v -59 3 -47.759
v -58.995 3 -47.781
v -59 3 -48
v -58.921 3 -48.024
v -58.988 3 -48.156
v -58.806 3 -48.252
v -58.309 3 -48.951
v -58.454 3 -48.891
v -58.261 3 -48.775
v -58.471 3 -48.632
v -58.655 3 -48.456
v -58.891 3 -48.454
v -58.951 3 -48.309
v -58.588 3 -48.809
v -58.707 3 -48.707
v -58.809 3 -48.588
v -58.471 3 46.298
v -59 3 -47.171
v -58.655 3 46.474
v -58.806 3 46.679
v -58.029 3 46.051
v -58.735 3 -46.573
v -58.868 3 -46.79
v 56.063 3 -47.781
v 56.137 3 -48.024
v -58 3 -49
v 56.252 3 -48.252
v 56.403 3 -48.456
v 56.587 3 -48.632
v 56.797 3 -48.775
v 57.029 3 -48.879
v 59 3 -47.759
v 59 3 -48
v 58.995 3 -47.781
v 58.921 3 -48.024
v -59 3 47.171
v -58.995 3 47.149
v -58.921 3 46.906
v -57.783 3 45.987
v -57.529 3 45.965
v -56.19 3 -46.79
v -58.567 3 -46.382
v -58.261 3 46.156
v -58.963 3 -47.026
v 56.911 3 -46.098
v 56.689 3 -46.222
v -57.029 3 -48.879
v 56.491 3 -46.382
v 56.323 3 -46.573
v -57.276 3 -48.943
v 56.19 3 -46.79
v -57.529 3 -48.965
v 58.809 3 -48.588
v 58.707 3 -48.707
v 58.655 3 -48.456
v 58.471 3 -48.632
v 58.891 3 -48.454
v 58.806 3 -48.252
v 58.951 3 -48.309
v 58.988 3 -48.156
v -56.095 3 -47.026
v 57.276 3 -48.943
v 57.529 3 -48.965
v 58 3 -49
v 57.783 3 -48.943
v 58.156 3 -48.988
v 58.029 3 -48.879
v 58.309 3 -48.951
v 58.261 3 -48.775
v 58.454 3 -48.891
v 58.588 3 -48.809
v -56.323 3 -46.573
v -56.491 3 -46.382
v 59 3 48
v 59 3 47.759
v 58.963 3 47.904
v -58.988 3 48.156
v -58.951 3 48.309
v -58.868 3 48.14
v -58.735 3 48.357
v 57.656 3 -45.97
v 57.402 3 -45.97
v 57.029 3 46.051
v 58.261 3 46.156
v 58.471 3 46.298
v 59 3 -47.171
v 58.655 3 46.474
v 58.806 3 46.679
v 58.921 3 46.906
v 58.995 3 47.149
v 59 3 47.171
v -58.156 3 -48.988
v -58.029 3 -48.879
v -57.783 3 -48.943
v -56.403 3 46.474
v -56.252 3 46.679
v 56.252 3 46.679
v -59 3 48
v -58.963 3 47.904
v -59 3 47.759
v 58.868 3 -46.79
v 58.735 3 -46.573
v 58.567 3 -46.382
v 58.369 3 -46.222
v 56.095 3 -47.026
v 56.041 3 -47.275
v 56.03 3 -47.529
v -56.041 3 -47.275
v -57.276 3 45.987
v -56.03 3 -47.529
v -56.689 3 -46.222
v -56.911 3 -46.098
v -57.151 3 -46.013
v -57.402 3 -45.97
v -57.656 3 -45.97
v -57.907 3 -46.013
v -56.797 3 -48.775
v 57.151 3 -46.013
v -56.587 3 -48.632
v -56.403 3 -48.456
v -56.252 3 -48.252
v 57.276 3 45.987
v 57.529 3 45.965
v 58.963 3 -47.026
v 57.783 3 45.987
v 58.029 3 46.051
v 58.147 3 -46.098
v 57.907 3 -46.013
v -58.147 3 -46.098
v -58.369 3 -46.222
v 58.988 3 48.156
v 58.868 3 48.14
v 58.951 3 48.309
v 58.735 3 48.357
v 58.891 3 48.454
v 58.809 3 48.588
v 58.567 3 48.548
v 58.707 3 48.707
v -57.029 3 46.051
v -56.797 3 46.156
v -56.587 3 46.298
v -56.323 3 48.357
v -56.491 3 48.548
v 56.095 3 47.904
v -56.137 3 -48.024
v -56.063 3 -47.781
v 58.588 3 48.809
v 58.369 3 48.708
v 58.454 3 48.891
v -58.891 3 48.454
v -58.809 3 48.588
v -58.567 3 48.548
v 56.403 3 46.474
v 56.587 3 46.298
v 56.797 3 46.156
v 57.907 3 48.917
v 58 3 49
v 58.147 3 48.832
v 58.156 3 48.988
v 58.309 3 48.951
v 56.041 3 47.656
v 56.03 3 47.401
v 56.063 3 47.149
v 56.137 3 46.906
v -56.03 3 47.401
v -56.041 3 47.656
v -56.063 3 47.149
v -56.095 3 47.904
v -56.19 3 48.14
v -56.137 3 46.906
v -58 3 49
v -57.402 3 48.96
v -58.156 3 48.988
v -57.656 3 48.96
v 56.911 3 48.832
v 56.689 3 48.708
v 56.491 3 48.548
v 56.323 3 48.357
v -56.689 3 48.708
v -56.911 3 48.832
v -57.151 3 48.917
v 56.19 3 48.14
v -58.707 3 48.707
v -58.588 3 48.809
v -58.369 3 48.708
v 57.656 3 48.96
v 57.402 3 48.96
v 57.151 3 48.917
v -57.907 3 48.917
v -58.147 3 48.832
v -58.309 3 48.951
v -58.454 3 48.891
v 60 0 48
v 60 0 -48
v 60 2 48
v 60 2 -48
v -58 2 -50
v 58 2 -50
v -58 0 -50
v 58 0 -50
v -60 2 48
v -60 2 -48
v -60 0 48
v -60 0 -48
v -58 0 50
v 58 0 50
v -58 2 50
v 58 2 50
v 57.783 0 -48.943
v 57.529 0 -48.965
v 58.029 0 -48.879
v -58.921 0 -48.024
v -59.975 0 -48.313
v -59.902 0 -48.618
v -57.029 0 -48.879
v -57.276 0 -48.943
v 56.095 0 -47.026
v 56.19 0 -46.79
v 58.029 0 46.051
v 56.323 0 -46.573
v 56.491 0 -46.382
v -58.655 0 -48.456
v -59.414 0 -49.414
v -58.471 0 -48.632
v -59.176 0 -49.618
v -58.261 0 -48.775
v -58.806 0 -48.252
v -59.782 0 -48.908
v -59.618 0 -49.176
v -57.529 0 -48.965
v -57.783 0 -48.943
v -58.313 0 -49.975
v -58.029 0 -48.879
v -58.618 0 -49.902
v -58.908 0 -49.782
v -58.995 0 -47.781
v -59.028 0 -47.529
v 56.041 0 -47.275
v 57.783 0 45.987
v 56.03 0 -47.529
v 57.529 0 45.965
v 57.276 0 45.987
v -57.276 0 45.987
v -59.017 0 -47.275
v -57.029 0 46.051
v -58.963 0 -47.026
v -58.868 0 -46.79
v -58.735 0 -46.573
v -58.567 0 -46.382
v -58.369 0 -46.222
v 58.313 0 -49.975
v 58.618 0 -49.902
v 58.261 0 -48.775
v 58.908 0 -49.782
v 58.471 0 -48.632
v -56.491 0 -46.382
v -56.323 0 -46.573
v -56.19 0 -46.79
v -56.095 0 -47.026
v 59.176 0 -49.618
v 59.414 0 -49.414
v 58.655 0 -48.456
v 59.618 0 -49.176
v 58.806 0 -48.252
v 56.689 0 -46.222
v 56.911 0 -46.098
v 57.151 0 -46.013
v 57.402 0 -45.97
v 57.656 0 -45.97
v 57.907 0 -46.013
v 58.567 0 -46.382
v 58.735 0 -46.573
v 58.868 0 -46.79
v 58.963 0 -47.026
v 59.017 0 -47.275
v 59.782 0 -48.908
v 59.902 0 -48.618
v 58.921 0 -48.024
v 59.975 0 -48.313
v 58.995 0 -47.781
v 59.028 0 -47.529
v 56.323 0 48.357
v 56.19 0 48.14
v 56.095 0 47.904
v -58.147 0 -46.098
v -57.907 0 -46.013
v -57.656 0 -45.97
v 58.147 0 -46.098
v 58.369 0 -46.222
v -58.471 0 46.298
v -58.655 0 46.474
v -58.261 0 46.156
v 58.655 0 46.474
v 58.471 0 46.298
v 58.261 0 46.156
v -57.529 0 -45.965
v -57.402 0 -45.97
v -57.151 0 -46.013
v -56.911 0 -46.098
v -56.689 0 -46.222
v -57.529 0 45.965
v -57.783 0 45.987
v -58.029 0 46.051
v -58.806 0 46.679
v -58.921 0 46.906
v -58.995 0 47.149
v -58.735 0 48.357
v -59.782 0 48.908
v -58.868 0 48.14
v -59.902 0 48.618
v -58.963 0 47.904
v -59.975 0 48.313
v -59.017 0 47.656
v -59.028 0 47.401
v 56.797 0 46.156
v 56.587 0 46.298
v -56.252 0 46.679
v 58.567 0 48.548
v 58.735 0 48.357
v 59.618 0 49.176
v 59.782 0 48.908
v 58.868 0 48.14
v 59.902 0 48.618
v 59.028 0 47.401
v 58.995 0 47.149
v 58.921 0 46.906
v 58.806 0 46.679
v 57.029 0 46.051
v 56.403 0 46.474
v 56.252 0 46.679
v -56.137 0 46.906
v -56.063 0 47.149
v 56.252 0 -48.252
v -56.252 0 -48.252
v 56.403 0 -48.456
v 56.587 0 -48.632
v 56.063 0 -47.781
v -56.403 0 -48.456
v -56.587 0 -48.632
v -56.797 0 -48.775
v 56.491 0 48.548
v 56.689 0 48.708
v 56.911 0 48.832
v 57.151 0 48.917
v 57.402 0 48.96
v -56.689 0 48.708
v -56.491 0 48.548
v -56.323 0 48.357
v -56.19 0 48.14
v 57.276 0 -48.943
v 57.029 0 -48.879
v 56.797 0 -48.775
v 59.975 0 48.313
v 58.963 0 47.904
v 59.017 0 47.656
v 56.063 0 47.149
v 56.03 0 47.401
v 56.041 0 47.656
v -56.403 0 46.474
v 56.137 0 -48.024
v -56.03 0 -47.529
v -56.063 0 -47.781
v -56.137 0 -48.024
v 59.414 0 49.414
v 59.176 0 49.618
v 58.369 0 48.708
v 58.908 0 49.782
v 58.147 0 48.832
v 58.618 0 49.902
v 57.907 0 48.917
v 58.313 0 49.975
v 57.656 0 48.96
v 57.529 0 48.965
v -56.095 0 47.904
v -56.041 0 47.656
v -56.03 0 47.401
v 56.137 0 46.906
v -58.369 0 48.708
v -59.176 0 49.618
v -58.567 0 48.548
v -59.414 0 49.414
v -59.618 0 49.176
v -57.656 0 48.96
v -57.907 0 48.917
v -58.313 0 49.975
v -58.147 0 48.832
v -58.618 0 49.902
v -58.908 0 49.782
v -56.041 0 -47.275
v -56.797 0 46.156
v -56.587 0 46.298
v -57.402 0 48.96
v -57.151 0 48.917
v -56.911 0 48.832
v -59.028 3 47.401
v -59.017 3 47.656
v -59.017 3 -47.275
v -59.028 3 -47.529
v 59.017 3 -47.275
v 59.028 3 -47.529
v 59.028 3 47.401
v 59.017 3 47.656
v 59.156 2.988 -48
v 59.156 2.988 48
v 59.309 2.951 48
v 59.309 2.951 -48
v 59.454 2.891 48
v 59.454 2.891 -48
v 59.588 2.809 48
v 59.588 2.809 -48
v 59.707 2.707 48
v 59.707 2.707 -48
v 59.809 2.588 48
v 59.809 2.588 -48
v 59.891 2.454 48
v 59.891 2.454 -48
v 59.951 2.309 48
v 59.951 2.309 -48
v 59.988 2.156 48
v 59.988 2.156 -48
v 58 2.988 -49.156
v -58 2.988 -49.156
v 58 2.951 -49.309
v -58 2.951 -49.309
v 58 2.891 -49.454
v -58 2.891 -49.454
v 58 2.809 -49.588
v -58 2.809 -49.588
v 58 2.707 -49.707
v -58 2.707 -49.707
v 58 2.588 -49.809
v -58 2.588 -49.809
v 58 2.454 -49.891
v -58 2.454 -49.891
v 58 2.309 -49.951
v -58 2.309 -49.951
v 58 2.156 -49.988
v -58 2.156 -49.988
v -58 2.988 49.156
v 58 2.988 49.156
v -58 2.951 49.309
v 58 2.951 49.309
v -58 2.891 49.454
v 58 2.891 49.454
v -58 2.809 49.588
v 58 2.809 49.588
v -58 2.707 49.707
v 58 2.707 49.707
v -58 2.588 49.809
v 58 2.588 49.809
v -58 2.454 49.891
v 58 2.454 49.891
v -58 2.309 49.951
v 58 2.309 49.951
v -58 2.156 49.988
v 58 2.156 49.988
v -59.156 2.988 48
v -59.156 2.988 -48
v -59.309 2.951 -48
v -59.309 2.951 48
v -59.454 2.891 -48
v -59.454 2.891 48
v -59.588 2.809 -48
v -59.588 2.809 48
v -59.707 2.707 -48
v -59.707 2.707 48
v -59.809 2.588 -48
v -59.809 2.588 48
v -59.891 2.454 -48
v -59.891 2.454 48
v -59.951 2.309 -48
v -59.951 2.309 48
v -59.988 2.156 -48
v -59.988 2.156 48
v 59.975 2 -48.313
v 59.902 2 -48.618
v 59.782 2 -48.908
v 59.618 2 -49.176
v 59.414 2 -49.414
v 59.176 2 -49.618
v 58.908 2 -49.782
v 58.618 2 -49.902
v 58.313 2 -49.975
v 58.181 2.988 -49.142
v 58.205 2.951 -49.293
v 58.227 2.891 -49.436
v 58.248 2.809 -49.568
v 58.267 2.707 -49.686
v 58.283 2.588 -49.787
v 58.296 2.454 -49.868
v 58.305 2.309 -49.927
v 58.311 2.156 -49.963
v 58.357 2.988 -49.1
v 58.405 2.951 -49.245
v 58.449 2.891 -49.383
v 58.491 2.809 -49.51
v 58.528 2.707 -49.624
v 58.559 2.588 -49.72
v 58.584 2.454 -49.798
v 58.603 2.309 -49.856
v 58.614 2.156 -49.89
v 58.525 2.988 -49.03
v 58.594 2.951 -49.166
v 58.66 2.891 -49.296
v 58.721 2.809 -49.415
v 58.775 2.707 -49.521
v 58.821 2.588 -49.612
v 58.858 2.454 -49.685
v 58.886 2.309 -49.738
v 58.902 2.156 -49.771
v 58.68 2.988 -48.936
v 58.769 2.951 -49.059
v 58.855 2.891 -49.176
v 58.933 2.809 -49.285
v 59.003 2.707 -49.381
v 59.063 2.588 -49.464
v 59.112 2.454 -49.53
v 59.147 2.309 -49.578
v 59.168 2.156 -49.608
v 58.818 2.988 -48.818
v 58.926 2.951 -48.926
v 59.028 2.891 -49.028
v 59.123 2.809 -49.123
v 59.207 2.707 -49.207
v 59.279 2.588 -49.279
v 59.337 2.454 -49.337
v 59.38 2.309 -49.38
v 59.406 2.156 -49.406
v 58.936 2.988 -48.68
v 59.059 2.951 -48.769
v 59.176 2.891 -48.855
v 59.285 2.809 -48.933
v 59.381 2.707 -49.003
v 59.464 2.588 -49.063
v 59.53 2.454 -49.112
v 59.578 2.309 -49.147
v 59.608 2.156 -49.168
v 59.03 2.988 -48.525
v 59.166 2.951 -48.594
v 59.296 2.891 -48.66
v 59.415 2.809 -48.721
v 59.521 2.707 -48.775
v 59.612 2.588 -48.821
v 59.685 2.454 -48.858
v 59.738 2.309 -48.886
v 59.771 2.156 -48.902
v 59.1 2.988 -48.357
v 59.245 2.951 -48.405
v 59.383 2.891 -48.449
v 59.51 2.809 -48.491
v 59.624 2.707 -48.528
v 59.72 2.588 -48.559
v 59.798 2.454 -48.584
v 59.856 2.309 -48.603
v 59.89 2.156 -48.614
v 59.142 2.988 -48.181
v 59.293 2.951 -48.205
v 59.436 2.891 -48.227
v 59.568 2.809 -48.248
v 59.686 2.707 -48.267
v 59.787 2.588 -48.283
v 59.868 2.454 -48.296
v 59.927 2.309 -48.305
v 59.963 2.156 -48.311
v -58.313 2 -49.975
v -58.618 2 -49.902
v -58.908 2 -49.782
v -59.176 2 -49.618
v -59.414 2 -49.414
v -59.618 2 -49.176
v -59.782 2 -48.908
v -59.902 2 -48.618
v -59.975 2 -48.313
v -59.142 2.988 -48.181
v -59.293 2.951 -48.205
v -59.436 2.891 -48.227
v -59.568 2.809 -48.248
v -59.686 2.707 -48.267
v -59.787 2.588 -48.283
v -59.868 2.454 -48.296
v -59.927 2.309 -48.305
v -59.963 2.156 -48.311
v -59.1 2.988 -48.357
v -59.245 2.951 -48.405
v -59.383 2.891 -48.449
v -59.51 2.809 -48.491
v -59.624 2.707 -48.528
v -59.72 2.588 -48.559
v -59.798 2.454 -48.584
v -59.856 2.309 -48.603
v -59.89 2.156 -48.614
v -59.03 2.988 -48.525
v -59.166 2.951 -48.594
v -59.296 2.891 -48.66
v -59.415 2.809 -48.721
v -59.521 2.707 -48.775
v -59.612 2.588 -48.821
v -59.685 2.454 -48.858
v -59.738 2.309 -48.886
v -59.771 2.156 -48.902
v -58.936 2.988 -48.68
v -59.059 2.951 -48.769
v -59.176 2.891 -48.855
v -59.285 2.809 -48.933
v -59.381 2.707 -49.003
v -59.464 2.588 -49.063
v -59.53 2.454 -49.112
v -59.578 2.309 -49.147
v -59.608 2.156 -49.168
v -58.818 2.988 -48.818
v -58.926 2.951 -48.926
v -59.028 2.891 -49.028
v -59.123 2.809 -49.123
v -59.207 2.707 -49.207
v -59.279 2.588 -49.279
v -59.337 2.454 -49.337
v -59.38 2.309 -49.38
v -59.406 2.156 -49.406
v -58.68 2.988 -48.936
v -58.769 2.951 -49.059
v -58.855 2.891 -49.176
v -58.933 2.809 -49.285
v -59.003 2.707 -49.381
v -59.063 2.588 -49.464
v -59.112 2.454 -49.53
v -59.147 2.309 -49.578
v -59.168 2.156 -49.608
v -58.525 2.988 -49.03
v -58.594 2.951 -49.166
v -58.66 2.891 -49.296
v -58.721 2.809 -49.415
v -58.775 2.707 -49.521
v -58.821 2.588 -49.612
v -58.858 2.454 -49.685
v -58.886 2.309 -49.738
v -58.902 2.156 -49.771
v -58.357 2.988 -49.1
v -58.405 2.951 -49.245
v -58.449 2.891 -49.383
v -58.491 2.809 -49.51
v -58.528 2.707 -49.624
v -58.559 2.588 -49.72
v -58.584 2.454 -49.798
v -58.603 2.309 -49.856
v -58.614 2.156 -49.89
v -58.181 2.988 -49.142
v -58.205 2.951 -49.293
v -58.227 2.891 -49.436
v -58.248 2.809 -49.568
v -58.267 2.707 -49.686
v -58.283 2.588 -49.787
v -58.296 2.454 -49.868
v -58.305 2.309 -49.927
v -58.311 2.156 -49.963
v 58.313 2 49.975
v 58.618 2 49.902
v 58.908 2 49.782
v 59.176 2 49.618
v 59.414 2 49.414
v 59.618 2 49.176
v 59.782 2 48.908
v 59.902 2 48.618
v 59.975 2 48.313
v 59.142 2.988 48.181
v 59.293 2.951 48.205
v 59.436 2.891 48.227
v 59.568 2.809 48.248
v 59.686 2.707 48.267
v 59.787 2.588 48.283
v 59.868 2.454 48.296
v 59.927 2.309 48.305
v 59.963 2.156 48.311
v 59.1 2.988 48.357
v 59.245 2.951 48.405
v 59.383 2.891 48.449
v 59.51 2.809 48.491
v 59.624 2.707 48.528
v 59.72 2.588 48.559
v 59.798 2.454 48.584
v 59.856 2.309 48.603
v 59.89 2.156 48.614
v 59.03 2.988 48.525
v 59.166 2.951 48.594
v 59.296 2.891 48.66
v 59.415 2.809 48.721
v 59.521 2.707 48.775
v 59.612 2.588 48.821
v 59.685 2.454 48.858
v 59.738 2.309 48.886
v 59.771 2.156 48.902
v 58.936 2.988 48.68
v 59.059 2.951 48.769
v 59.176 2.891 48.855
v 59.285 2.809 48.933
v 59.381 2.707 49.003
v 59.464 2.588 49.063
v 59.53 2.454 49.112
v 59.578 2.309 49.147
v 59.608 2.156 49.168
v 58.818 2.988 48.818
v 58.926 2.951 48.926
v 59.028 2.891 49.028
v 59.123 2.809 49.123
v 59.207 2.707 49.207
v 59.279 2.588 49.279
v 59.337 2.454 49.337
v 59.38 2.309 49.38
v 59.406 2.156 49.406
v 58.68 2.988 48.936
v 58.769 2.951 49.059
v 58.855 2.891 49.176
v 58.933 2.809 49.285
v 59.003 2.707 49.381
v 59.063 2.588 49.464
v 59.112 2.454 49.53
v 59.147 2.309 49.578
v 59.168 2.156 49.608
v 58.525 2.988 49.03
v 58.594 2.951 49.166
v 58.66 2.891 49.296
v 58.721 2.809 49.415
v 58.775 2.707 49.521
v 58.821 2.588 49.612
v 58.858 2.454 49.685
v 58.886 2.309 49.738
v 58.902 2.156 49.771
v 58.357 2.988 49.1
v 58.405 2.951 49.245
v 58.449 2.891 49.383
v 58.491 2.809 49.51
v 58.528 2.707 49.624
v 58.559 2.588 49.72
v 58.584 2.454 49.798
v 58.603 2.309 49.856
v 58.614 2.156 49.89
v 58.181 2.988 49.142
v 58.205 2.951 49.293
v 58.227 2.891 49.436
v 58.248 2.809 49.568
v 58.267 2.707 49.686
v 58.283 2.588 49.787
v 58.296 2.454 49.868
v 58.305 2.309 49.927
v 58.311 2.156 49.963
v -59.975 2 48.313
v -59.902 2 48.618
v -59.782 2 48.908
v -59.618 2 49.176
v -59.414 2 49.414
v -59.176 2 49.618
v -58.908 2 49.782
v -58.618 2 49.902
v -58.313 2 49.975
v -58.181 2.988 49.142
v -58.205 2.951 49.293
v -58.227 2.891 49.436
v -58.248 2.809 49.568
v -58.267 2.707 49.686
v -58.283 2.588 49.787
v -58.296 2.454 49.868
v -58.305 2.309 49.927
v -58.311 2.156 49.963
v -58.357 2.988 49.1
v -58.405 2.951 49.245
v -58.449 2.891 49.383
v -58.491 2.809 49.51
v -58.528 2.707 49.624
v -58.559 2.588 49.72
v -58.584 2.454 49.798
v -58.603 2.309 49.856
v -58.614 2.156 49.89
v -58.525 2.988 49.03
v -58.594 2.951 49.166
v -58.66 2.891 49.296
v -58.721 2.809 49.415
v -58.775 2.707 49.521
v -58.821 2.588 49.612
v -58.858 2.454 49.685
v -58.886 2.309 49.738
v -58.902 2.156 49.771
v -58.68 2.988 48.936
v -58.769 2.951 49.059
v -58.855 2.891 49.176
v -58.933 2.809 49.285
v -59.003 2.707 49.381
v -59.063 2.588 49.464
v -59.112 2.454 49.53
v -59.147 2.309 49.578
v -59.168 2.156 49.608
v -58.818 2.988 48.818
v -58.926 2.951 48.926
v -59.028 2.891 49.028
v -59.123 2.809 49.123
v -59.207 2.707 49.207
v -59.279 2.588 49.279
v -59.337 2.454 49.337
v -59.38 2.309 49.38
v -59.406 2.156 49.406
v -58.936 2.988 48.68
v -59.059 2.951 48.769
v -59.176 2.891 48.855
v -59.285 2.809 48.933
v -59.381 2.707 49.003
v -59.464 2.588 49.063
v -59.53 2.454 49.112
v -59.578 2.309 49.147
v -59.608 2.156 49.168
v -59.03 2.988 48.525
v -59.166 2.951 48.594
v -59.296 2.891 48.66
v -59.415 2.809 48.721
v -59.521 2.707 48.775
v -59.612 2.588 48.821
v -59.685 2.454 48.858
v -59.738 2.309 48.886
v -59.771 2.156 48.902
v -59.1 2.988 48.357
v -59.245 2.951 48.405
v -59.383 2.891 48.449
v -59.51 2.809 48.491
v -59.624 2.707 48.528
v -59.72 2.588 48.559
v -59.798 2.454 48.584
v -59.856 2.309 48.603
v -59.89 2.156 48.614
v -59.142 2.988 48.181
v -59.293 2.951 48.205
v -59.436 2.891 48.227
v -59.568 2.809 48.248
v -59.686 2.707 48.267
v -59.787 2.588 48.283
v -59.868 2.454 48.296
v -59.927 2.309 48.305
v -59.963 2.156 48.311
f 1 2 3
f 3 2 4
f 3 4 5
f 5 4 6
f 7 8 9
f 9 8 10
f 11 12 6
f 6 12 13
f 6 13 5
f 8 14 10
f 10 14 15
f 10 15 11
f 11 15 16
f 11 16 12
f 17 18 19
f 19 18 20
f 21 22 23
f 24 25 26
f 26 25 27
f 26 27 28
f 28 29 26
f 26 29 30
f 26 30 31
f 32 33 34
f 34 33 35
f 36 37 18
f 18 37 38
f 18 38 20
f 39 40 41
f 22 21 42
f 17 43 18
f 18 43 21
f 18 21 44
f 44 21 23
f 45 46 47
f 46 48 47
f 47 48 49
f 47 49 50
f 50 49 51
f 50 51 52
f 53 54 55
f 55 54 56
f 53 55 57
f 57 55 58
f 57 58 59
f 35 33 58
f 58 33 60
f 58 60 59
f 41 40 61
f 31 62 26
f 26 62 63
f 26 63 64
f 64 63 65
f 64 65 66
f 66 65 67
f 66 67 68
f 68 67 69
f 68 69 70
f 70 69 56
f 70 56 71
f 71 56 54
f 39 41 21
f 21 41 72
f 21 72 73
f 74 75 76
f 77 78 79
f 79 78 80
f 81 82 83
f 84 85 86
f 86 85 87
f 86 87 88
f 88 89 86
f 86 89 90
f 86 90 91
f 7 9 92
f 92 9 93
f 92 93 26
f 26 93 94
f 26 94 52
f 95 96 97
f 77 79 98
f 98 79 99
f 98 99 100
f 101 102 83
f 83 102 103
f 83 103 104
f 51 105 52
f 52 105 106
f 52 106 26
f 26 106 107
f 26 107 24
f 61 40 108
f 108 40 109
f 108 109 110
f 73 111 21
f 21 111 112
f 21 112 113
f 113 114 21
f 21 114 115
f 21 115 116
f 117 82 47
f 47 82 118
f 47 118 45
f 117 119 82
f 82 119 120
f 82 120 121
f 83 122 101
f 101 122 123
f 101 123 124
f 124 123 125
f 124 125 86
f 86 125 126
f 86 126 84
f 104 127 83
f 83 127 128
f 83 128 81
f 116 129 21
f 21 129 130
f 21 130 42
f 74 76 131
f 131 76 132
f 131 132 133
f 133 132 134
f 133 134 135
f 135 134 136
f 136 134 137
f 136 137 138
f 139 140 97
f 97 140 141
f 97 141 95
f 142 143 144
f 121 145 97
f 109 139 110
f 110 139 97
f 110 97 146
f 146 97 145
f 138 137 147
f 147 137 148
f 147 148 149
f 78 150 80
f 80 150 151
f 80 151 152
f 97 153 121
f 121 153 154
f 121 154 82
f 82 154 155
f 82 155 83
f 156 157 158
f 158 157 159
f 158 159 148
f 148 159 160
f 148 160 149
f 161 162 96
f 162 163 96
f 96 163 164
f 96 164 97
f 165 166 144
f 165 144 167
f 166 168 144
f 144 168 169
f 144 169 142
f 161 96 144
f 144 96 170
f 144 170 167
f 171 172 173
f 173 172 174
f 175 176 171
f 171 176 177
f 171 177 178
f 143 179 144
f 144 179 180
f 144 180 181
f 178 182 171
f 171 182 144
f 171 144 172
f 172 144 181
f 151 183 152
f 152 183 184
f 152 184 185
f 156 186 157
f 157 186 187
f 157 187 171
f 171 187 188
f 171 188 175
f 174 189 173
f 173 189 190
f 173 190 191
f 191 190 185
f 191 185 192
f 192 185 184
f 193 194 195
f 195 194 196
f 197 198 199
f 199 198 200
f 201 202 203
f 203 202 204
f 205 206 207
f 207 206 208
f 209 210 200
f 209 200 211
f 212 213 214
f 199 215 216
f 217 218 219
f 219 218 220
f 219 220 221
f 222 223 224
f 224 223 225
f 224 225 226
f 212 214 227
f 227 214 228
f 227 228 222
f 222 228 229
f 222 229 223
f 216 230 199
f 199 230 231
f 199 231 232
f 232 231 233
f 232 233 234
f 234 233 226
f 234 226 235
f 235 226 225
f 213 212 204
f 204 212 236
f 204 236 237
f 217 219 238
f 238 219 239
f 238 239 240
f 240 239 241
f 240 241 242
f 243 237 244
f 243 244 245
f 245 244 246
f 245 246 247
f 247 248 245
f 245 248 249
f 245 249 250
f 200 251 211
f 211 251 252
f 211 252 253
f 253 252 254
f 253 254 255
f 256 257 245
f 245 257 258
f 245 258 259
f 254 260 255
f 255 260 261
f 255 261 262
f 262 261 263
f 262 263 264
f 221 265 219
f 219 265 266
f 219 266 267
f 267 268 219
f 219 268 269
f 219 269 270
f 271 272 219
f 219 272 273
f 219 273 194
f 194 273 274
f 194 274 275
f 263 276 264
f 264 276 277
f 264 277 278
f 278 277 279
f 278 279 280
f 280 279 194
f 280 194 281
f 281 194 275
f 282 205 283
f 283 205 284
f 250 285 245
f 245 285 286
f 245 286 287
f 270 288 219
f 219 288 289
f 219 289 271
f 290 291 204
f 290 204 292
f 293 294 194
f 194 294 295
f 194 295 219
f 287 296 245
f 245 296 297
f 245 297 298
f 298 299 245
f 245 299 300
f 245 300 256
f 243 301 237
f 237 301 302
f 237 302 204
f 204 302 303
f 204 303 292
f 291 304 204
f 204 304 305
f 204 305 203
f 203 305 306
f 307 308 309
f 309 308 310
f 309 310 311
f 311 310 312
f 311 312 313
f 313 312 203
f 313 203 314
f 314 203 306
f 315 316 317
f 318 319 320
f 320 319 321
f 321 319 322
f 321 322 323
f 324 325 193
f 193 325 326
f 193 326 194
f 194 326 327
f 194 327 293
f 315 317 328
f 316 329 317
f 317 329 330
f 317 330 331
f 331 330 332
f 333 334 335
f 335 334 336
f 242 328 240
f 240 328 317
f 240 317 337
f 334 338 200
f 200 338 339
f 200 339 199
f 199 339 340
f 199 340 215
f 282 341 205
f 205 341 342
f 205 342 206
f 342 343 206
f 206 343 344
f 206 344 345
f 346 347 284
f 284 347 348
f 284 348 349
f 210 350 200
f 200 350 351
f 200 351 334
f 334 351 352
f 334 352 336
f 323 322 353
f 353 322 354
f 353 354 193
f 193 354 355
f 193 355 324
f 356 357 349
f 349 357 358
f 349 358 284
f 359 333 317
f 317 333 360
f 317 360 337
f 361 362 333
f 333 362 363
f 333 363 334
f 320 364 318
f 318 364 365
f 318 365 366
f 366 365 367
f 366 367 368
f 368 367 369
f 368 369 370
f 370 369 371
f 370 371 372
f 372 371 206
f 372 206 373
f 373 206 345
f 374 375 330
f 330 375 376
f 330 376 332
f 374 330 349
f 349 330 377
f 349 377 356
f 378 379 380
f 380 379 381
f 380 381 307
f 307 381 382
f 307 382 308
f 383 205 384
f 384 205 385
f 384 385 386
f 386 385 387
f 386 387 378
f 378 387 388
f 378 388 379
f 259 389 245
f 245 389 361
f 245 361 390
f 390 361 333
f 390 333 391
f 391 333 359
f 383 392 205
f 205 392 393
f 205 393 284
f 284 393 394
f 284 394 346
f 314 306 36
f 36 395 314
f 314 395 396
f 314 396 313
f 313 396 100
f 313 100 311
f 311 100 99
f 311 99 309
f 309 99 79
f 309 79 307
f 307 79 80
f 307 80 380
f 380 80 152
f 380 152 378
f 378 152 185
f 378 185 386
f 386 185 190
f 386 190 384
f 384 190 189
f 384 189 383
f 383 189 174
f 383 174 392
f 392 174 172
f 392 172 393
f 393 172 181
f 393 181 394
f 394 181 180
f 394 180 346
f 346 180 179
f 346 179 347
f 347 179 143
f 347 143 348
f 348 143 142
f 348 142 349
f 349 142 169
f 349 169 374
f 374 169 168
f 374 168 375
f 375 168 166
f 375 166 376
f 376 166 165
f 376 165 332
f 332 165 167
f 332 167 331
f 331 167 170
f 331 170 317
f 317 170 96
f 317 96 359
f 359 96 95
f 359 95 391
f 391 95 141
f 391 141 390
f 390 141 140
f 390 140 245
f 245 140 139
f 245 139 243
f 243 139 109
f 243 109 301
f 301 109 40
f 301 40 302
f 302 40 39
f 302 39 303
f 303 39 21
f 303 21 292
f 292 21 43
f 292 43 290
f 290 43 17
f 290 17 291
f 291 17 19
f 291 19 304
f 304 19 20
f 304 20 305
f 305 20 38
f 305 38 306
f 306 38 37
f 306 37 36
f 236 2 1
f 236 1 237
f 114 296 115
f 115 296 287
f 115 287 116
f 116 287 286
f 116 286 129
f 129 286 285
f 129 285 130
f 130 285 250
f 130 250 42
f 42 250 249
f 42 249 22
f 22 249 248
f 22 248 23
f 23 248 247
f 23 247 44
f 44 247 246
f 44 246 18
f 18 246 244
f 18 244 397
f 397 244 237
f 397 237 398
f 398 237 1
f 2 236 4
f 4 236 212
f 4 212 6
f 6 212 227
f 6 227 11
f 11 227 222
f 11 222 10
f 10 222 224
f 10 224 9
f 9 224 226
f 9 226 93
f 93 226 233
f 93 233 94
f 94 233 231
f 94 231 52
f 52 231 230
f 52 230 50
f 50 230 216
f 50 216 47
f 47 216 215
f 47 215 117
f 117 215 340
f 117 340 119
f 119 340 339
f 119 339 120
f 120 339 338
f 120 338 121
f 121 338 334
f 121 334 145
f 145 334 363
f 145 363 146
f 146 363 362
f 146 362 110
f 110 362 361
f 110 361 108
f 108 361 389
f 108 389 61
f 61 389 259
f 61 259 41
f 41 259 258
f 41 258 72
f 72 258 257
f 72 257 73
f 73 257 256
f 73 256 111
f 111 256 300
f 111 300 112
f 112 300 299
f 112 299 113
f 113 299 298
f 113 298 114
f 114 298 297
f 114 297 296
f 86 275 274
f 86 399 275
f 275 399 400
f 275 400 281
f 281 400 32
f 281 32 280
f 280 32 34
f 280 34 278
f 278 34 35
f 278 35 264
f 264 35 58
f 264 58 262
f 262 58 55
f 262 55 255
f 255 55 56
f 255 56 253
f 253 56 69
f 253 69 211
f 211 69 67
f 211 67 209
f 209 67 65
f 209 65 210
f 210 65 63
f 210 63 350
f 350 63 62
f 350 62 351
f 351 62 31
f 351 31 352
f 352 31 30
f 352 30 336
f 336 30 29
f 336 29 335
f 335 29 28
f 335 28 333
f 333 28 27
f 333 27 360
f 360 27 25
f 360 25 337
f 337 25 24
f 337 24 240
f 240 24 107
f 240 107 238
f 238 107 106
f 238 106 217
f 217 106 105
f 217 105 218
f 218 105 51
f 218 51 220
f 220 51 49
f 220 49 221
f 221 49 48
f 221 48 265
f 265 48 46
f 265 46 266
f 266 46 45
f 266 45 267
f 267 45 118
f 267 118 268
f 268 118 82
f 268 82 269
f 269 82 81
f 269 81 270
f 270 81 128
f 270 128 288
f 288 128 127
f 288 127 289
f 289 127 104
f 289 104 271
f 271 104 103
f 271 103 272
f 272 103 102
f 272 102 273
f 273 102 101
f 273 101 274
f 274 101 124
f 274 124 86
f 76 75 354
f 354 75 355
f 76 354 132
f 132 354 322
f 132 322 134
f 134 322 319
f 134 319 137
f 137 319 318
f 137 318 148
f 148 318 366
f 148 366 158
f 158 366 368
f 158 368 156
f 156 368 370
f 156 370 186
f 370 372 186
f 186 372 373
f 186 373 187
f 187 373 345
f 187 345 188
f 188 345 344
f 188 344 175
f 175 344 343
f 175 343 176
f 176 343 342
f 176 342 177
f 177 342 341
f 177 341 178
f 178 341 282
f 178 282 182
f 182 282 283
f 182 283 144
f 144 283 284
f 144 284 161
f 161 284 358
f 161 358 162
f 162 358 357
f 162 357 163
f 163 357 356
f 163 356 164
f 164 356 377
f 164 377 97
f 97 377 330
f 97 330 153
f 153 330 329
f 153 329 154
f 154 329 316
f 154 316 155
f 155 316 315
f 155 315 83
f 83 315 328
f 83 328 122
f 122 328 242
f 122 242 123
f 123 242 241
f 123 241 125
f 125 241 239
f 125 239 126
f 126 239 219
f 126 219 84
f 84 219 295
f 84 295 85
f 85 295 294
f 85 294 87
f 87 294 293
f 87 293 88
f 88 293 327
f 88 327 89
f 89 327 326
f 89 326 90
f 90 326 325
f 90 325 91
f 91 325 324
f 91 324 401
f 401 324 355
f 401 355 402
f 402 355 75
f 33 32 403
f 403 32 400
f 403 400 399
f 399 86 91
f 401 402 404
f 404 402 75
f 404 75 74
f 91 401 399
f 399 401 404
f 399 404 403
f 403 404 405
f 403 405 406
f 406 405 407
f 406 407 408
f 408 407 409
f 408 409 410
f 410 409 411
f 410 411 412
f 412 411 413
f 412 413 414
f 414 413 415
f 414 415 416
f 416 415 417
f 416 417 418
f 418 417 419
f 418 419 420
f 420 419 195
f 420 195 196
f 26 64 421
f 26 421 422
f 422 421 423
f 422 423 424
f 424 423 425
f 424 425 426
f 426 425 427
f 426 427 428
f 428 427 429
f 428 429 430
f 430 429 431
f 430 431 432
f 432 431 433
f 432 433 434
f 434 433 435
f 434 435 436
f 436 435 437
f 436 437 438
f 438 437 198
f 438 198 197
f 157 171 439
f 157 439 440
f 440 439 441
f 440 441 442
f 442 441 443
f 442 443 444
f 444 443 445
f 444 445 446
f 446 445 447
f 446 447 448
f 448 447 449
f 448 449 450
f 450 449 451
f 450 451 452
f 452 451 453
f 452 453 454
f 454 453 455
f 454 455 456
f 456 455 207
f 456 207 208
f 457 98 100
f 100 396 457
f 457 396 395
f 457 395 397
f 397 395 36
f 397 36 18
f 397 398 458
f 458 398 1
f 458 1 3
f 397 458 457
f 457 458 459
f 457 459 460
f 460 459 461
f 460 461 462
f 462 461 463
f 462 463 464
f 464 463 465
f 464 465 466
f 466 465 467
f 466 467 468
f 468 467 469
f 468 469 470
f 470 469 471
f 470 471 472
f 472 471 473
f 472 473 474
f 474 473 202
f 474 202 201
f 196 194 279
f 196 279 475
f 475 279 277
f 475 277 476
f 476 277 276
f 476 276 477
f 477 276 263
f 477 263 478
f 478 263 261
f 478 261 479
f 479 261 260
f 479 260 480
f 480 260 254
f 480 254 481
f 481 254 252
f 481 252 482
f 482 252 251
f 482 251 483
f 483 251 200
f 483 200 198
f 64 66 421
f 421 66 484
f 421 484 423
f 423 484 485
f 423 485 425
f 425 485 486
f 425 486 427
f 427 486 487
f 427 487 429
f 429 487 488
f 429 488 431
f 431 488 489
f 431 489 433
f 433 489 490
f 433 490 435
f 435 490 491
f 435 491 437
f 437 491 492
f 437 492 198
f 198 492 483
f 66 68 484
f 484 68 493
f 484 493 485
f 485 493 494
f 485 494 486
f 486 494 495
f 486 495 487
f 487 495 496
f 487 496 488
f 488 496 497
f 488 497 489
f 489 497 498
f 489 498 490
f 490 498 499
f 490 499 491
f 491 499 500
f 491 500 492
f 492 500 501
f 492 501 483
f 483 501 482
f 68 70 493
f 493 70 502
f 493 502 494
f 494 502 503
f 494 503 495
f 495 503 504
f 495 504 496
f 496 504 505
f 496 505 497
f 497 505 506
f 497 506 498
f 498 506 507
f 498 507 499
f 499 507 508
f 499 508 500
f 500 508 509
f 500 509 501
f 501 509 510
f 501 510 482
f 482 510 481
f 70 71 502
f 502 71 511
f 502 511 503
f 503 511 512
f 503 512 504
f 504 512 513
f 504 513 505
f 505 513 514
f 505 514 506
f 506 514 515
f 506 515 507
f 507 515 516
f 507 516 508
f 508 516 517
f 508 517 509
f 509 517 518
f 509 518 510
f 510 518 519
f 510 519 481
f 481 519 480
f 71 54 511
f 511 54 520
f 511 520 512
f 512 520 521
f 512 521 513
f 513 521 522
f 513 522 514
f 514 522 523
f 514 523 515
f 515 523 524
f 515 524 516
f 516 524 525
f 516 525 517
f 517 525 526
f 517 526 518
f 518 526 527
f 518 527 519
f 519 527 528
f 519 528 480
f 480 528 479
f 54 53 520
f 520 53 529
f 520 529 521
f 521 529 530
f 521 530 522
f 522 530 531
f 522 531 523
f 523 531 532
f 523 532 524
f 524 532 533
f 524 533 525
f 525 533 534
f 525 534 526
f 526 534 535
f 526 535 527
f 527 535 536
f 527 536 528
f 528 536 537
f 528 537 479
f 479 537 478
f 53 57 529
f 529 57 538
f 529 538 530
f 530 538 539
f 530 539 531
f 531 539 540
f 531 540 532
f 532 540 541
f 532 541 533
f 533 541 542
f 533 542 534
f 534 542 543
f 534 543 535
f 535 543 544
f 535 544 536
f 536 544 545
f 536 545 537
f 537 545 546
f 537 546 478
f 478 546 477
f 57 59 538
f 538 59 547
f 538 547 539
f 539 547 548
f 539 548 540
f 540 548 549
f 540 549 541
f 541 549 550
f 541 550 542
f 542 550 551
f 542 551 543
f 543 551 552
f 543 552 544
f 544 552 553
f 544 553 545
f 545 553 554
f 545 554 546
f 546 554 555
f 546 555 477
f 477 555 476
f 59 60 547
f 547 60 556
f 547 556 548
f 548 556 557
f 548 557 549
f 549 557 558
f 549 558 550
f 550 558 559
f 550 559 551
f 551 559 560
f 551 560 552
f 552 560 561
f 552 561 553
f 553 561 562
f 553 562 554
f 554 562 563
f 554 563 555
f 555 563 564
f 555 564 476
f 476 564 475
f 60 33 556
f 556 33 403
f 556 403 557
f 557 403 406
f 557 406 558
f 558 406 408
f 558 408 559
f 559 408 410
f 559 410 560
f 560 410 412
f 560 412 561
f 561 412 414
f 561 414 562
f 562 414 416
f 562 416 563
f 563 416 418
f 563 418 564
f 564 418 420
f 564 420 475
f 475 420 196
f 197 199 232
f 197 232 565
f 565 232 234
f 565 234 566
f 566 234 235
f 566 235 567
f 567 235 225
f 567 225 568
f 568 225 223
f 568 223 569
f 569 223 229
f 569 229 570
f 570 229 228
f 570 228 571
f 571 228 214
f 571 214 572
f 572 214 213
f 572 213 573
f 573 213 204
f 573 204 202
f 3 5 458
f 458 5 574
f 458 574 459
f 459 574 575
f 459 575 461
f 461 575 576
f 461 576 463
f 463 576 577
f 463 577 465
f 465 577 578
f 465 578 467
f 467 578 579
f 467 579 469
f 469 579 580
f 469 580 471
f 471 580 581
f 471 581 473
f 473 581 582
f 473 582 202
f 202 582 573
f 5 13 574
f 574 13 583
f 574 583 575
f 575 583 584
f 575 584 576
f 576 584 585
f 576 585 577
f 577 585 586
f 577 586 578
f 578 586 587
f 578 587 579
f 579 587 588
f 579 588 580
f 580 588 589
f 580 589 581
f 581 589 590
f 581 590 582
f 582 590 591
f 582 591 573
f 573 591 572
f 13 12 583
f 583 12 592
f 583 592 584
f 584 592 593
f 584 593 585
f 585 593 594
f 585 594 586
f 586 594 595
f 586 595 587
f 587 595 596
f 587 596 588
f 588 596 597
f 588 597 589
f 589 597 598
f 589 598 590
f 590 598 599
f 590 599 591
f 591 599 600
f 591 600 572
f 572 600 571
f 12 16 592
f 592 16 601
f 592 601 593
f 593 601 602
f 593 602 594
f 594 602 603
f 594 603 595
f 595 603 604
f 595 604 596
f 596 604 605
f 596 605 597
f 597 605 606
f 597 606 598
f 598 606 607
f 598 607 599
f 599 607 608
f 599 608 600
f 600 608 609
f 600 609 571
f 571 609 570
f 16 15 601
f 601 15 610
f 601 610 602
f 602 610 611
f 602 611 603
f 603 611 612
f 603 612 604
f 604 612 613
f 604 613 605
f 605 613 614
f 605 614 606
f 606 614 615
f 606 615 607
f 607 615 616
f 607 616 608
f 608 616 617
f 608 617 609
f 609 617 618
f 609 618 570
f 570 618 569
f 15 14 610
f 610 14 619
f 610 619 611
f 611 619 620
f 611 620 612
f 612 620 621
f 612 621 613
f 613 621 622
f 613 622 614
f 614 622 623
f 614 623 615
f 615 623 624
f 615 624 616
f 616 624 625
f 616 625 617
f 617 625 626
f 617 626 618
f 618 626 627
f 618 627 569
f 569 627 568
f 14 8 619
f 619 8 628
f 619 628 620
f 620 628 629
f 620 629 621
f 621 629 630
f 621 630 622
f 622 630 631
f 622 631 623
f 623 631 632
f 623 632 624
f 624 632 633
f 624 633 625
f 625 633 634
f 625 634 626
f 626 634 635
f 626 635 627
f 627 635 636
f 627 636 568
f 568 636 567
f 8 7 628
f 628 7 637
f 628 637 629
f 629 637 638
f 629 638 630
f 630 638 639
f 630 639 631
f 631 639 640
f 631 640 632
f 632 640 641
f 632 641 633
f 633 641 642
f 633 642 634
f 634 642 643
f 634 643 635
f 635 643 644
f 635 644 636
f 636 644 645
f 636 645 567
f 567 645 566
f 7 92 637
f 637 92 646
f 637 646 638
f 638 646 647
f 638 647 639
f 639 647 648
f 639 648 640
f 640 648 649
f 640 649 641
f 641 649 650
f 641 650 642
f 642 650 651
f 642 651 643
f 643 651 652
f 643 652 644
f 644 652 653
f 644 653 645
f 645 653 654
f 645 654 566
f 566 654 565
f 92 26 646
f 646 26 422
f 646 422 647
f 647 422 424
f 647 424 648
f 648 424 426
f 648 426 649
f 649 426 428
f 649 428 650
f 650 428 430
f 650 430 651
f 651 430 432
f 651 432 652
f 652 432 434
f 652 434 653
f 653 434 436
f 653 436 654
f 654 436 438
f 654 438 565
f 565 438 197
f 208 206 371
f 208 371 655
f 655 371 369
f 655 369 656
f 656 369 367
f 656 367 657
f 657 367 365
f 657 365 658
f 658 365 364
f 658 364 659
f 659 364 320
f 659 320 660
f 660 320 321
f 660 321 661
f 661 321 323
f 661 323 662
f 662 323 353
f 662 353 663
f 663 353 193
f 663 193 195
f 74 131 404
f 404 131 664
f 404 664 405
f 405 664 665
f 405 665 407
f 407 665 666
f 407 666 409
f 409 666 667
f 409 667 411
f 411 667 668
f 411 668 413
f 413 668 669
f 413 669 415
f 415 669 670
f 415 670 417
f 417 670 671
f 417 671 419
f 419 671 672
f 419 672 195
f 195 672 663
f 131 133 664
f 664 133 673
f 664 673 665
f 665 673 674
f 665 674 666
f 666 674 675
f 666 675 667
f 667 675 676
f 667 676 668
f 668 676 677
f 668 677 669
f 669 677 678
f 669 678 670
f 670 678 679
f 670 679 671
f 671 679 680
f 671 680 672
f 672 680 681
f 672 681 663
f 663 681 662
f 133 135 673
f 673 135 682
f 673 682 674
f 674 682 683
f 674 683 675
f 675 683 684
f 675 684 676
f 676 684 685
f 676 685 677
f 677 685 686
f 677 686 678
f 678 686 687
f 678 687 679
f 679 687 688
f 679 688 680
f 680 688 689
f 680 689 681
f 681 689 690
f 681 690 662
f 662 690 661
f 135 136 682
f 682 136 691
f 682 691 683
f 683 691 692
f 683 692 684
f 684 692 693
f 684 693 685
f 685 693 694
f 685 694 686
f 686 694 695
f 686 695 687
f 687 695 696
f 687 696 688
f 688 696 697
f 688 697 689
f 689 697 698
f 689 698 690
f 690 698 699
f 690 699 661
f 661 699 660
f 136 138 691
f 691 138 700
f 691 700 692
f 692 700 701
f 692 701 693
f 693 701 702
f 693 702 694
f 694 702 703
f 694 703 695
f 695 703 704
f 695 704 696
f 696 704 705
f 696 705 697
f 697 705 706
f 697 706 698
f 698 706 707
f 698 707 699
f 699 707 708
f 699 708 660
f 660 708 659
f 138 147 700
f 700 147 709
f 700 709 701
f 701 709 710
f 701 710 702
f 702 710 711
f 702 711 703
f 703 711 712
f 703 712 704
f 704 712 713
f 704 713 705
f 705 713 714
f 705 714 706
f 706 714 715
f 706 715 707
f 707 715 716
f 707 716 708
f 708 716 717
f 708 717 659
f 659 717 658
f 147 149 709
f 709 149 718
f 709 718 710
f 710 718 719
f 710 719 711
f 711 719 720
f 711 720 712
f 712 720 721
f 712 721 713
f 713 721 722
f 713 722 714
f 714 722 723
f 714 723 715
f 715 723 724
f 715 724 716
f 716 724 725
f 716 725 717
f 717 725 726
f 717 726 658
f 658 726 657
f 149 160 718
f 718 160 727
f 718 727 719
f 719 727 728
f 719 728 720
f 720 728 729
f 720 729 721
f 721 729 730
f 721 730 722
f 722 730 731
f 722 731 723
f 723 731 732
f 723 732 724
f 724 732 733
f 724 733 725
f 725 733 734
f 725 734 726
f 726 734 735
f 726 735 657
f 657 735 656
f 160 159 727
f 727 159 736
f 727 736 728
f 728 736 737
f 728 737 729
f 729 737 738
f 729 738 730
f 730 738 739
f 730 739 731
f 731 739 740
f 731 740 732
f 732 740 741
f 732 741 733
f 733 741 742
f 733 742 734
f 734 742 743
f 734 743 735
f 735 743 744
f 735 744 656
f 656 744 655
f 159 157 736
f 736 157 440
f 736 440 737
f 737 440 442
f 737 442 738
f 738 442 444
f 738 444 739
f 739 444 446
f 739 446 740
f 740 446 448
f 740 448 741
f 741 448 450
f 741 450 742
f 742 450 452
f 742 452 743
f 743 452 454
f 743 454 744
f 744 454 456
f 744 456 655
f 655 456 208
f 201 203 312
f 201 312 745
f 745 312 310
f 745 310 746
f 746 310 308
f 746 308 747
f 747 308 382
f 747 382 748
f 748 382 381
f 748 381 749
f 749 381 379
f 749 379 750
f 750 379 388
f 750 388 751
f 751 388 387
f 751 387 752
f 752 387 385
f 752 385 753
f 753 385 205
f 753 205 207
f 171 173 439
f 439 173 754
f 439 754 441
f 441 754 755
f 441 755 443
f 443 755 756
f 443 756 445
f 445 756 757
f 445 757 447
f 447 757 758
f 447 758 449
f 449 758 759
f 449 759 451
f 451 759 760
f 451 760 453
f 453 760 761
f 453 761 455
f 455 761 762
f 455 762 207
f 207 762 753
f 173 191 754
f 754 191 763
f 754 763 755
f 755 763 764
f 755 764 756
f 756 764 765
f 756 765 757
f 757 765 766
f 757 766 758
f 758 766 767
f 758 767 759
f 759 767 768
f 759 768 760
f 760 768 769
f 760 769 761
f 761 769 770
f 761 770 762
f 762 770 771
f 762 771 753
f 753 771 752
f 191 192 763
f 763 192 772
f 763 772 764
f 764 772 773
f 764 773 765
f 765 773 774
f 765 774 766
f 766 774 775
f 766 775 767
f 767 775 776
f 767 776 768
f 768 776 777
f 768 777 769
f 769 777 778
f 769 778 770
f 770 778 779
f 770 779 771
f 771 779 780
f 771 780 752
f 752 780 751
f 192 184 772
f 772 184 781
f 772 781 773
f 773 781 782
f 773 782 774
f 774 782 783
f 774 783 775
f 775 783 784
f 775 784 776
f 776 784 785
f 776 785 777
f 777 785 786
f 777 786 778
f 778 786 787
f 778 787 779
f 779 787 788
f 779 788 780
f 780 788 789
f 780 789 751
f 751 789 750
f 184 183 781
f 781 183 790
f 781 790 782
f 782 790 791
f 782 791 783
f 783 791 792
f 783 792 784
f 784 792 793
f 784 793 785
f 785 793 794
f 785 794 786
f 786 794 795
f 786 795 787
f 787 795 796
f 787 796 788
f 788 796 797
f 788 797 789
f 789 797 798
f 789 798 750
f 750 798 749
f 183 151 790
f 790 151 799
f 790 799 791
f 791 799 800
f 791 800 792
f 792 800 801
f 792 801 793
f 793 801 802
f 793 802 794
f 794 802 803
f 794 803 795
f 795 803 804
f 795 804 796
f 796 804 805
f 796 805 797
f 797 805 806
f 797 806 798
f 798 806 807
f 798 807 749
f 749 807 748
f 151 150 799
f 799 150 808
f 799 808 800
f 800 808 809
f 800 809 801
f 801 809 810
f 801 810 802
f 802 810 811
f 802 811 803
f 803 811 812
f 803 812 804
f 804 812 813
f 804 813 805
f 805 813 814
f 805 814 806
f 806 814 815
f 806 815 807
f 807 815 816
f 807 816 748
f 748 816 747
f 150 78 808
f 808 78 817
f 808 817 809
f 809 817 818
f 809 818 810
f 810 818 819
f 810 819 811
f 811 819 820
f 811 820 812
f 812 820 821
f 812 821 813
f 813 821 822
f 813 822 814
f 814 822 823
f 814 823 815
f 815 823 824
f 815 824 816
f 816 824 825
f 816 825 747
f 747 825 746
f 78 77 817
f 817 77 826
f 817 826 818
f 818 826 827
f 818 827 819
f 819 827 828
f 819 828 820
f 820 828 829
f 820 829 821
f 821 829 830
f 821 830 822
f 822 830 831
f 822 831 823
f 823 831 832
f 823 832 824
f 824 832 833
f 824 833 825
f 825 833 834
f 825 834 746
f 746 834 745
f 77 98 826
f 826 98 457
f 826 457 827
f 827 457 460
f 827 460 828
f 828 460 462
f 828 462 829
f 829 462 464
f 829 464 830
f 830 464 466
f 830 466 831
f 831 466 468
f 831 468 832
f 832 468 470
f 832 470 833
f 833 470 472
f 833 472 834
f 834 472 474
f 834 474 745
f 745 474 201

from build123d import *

# Parameters (mm, degrees)
SKETCH1_W           = 120
SKETCH1_H           = 100
BOSS_EXTRUDE1_DEPTH = 3
SKETCH2_R           = 1.5
CUT_EXTRUDE1_DEPTH  = 79.160092119
FILLET2_R           = 1
FILLET4_R           = 2


with BuildPart() as part:
    # Sketch1 → Boss-Extrude1 (new body)
    with BuildSketch(Plane(origin=(0, 0, 0), x_dir=(1, 0, 0), z_dir=(0, 1, 0))):
        Rectangle(SKETCH1_W, SKETCH1_H)
    extrude(amount=BOSS_EXTRUDE1_DEPTH)

    # Sketch2 → Cut-Extrude1 (cut, through all)
    with BuildSketch(Plane(origin=(0, 0, 0), x_dir=(-1, 0, 0), z_dir=(0, -1, 0))):
        with Locations(Location((57.529023281, -47.465069221, 0), (0, 0, 90))):
            Circle(SKETCH2_R)
        with Locations(Location((57.529023281, 47.465069221, 0), (0, 0, 270))):
            Circle(SKETCH2_R)
        with Locations(Location((-57.529023281, 47.465069221, 0), (0, 0, 90))):
            Circle(SKETCH2_R)
        with Locations(Location((-57.529023281, -47.465069221, 0), (0, 0, 270))):
            Circle(SKETCH2_R)
    extrude(amount=-CUT_EXTRUDE1_DEPTH, mode=Mode.SUBTRACT)

    # Fillet2
    fillet2_edges = [part.edges().sort_by_distance(p)[0] for p in [
        (-60, 3, 0),
        (0, 3, 50),
        (60, 3, 0),
        (0, 3, -50),
    ]]
    fillet(fillet2_edges, radius=FILLET2_R)

    # Fillet4
    # the kernel refuses this fillet: 2 mm, written as the material it takes off along each edge
    with BuildSketch(Plane(origin=(58, 3, -48), x_dir=(1, 0, 0), z_dir=(0, 0, 1))) as fillet4_piece_1:
        with BuildLine():
            CenterArc((1, -1), 1, 0, 90)
            Line((2, -1), (2, 0))
            Line((2, 0), (1, 0))
        make_face()
    revolve(axis=Axis((58, 3, -48), (0, 1, 0)), revolution_arc=90, mode=Mode.SUBTRACT)
    with BuildSketch(Plane(origin=(58, 3, 48), x_dir=(0, 0, 1), z_dir=(-1, 0, 0))) as fillet4_piece_2:
        with BuildLine():
            CenterArc((1, -1), 1, 0, 90)
            Line((2, -1), (2, 0))
            Line((2, 0), (1, 0))
        make_face()
    revolve(axis=Axis((58, 3, 48), (0, 1, 0)), revolution_arc=90, mode=Mode.SUBTRACT)
    with BuildSketch(Plane(origin=(-58, 3, -48), x_dir=(0, 0, -1), z_dir=(1, 0, 0))) as fillet4_piece_3:
        with BuildLine():
            CenterArc((1, -1), 1, 0, 90)
            Line((2, -1), (2, 0))
            Line((2, 0), (1, 0))
        make_face()
    revolve(axis=Axis((-58, 3, -48), (0, 1, 0)), revolution_arc=90, mode=Mode.SUBTRACT)
    with BuildSketch(Plane(origin=(-58, 3, 48), x_dir=(-1, 0, 0), z_dir=(0, 0, -1))) as fillet4_piece_4:
        with BuildLine():
            CenterArc((1, -1), 1, 0, 90)
            Line((2, -1), (2, 0))
            Line((2, 0), (1, 0))
        make_face()
    revolve(axis=Axis((-58, 3, 48), (0, 1, 0)), revolution_arc=90, mode=Mode.SUBTRACT)
    with BuildSketch(Plane(origin=(-60, -5, 50), x_dir=(0, 0, -1), z_dir=(0, 1, 0)), Plane(origin=(-60, -5, -50), x_dir=(1, 0, 0), z_dir=(0, 1, 0))) as fillet4_piece_5:
        with BuildLine():
            CenterArc((FILLET4_R, -FILLET4_R), FILLET4_R, 90, 90)
            Line((0, -FILLET4_R), (0, 0))
            Line((0, 0), (FILLET4_R, 0))
        make_face()
    extrude(amount=8, mode=Mode.SUBTRACT)
    with BuildSketch(Plane(origin=(60, -5, 50), x_dir=(0, 0, -1), z_dir=(0, 1, 0)), Plane(origin=(60, -5, -50), x_dir=(-1, 0, 0), z_dir=(0, 1, 0))) as fillet4_piece_6:
        with BuildLine():
            CenterArc((FILLET4_R, FILLET4_R), FILLET4_R, 180, 90)
            Line((0, FILLET4_R), (0, 0))
            Line((0, 0), (FILLET4_R, 0))
        make_face()
    extrude(amount=8, mode=Mode.SUBTRACT)


solid = part.part
